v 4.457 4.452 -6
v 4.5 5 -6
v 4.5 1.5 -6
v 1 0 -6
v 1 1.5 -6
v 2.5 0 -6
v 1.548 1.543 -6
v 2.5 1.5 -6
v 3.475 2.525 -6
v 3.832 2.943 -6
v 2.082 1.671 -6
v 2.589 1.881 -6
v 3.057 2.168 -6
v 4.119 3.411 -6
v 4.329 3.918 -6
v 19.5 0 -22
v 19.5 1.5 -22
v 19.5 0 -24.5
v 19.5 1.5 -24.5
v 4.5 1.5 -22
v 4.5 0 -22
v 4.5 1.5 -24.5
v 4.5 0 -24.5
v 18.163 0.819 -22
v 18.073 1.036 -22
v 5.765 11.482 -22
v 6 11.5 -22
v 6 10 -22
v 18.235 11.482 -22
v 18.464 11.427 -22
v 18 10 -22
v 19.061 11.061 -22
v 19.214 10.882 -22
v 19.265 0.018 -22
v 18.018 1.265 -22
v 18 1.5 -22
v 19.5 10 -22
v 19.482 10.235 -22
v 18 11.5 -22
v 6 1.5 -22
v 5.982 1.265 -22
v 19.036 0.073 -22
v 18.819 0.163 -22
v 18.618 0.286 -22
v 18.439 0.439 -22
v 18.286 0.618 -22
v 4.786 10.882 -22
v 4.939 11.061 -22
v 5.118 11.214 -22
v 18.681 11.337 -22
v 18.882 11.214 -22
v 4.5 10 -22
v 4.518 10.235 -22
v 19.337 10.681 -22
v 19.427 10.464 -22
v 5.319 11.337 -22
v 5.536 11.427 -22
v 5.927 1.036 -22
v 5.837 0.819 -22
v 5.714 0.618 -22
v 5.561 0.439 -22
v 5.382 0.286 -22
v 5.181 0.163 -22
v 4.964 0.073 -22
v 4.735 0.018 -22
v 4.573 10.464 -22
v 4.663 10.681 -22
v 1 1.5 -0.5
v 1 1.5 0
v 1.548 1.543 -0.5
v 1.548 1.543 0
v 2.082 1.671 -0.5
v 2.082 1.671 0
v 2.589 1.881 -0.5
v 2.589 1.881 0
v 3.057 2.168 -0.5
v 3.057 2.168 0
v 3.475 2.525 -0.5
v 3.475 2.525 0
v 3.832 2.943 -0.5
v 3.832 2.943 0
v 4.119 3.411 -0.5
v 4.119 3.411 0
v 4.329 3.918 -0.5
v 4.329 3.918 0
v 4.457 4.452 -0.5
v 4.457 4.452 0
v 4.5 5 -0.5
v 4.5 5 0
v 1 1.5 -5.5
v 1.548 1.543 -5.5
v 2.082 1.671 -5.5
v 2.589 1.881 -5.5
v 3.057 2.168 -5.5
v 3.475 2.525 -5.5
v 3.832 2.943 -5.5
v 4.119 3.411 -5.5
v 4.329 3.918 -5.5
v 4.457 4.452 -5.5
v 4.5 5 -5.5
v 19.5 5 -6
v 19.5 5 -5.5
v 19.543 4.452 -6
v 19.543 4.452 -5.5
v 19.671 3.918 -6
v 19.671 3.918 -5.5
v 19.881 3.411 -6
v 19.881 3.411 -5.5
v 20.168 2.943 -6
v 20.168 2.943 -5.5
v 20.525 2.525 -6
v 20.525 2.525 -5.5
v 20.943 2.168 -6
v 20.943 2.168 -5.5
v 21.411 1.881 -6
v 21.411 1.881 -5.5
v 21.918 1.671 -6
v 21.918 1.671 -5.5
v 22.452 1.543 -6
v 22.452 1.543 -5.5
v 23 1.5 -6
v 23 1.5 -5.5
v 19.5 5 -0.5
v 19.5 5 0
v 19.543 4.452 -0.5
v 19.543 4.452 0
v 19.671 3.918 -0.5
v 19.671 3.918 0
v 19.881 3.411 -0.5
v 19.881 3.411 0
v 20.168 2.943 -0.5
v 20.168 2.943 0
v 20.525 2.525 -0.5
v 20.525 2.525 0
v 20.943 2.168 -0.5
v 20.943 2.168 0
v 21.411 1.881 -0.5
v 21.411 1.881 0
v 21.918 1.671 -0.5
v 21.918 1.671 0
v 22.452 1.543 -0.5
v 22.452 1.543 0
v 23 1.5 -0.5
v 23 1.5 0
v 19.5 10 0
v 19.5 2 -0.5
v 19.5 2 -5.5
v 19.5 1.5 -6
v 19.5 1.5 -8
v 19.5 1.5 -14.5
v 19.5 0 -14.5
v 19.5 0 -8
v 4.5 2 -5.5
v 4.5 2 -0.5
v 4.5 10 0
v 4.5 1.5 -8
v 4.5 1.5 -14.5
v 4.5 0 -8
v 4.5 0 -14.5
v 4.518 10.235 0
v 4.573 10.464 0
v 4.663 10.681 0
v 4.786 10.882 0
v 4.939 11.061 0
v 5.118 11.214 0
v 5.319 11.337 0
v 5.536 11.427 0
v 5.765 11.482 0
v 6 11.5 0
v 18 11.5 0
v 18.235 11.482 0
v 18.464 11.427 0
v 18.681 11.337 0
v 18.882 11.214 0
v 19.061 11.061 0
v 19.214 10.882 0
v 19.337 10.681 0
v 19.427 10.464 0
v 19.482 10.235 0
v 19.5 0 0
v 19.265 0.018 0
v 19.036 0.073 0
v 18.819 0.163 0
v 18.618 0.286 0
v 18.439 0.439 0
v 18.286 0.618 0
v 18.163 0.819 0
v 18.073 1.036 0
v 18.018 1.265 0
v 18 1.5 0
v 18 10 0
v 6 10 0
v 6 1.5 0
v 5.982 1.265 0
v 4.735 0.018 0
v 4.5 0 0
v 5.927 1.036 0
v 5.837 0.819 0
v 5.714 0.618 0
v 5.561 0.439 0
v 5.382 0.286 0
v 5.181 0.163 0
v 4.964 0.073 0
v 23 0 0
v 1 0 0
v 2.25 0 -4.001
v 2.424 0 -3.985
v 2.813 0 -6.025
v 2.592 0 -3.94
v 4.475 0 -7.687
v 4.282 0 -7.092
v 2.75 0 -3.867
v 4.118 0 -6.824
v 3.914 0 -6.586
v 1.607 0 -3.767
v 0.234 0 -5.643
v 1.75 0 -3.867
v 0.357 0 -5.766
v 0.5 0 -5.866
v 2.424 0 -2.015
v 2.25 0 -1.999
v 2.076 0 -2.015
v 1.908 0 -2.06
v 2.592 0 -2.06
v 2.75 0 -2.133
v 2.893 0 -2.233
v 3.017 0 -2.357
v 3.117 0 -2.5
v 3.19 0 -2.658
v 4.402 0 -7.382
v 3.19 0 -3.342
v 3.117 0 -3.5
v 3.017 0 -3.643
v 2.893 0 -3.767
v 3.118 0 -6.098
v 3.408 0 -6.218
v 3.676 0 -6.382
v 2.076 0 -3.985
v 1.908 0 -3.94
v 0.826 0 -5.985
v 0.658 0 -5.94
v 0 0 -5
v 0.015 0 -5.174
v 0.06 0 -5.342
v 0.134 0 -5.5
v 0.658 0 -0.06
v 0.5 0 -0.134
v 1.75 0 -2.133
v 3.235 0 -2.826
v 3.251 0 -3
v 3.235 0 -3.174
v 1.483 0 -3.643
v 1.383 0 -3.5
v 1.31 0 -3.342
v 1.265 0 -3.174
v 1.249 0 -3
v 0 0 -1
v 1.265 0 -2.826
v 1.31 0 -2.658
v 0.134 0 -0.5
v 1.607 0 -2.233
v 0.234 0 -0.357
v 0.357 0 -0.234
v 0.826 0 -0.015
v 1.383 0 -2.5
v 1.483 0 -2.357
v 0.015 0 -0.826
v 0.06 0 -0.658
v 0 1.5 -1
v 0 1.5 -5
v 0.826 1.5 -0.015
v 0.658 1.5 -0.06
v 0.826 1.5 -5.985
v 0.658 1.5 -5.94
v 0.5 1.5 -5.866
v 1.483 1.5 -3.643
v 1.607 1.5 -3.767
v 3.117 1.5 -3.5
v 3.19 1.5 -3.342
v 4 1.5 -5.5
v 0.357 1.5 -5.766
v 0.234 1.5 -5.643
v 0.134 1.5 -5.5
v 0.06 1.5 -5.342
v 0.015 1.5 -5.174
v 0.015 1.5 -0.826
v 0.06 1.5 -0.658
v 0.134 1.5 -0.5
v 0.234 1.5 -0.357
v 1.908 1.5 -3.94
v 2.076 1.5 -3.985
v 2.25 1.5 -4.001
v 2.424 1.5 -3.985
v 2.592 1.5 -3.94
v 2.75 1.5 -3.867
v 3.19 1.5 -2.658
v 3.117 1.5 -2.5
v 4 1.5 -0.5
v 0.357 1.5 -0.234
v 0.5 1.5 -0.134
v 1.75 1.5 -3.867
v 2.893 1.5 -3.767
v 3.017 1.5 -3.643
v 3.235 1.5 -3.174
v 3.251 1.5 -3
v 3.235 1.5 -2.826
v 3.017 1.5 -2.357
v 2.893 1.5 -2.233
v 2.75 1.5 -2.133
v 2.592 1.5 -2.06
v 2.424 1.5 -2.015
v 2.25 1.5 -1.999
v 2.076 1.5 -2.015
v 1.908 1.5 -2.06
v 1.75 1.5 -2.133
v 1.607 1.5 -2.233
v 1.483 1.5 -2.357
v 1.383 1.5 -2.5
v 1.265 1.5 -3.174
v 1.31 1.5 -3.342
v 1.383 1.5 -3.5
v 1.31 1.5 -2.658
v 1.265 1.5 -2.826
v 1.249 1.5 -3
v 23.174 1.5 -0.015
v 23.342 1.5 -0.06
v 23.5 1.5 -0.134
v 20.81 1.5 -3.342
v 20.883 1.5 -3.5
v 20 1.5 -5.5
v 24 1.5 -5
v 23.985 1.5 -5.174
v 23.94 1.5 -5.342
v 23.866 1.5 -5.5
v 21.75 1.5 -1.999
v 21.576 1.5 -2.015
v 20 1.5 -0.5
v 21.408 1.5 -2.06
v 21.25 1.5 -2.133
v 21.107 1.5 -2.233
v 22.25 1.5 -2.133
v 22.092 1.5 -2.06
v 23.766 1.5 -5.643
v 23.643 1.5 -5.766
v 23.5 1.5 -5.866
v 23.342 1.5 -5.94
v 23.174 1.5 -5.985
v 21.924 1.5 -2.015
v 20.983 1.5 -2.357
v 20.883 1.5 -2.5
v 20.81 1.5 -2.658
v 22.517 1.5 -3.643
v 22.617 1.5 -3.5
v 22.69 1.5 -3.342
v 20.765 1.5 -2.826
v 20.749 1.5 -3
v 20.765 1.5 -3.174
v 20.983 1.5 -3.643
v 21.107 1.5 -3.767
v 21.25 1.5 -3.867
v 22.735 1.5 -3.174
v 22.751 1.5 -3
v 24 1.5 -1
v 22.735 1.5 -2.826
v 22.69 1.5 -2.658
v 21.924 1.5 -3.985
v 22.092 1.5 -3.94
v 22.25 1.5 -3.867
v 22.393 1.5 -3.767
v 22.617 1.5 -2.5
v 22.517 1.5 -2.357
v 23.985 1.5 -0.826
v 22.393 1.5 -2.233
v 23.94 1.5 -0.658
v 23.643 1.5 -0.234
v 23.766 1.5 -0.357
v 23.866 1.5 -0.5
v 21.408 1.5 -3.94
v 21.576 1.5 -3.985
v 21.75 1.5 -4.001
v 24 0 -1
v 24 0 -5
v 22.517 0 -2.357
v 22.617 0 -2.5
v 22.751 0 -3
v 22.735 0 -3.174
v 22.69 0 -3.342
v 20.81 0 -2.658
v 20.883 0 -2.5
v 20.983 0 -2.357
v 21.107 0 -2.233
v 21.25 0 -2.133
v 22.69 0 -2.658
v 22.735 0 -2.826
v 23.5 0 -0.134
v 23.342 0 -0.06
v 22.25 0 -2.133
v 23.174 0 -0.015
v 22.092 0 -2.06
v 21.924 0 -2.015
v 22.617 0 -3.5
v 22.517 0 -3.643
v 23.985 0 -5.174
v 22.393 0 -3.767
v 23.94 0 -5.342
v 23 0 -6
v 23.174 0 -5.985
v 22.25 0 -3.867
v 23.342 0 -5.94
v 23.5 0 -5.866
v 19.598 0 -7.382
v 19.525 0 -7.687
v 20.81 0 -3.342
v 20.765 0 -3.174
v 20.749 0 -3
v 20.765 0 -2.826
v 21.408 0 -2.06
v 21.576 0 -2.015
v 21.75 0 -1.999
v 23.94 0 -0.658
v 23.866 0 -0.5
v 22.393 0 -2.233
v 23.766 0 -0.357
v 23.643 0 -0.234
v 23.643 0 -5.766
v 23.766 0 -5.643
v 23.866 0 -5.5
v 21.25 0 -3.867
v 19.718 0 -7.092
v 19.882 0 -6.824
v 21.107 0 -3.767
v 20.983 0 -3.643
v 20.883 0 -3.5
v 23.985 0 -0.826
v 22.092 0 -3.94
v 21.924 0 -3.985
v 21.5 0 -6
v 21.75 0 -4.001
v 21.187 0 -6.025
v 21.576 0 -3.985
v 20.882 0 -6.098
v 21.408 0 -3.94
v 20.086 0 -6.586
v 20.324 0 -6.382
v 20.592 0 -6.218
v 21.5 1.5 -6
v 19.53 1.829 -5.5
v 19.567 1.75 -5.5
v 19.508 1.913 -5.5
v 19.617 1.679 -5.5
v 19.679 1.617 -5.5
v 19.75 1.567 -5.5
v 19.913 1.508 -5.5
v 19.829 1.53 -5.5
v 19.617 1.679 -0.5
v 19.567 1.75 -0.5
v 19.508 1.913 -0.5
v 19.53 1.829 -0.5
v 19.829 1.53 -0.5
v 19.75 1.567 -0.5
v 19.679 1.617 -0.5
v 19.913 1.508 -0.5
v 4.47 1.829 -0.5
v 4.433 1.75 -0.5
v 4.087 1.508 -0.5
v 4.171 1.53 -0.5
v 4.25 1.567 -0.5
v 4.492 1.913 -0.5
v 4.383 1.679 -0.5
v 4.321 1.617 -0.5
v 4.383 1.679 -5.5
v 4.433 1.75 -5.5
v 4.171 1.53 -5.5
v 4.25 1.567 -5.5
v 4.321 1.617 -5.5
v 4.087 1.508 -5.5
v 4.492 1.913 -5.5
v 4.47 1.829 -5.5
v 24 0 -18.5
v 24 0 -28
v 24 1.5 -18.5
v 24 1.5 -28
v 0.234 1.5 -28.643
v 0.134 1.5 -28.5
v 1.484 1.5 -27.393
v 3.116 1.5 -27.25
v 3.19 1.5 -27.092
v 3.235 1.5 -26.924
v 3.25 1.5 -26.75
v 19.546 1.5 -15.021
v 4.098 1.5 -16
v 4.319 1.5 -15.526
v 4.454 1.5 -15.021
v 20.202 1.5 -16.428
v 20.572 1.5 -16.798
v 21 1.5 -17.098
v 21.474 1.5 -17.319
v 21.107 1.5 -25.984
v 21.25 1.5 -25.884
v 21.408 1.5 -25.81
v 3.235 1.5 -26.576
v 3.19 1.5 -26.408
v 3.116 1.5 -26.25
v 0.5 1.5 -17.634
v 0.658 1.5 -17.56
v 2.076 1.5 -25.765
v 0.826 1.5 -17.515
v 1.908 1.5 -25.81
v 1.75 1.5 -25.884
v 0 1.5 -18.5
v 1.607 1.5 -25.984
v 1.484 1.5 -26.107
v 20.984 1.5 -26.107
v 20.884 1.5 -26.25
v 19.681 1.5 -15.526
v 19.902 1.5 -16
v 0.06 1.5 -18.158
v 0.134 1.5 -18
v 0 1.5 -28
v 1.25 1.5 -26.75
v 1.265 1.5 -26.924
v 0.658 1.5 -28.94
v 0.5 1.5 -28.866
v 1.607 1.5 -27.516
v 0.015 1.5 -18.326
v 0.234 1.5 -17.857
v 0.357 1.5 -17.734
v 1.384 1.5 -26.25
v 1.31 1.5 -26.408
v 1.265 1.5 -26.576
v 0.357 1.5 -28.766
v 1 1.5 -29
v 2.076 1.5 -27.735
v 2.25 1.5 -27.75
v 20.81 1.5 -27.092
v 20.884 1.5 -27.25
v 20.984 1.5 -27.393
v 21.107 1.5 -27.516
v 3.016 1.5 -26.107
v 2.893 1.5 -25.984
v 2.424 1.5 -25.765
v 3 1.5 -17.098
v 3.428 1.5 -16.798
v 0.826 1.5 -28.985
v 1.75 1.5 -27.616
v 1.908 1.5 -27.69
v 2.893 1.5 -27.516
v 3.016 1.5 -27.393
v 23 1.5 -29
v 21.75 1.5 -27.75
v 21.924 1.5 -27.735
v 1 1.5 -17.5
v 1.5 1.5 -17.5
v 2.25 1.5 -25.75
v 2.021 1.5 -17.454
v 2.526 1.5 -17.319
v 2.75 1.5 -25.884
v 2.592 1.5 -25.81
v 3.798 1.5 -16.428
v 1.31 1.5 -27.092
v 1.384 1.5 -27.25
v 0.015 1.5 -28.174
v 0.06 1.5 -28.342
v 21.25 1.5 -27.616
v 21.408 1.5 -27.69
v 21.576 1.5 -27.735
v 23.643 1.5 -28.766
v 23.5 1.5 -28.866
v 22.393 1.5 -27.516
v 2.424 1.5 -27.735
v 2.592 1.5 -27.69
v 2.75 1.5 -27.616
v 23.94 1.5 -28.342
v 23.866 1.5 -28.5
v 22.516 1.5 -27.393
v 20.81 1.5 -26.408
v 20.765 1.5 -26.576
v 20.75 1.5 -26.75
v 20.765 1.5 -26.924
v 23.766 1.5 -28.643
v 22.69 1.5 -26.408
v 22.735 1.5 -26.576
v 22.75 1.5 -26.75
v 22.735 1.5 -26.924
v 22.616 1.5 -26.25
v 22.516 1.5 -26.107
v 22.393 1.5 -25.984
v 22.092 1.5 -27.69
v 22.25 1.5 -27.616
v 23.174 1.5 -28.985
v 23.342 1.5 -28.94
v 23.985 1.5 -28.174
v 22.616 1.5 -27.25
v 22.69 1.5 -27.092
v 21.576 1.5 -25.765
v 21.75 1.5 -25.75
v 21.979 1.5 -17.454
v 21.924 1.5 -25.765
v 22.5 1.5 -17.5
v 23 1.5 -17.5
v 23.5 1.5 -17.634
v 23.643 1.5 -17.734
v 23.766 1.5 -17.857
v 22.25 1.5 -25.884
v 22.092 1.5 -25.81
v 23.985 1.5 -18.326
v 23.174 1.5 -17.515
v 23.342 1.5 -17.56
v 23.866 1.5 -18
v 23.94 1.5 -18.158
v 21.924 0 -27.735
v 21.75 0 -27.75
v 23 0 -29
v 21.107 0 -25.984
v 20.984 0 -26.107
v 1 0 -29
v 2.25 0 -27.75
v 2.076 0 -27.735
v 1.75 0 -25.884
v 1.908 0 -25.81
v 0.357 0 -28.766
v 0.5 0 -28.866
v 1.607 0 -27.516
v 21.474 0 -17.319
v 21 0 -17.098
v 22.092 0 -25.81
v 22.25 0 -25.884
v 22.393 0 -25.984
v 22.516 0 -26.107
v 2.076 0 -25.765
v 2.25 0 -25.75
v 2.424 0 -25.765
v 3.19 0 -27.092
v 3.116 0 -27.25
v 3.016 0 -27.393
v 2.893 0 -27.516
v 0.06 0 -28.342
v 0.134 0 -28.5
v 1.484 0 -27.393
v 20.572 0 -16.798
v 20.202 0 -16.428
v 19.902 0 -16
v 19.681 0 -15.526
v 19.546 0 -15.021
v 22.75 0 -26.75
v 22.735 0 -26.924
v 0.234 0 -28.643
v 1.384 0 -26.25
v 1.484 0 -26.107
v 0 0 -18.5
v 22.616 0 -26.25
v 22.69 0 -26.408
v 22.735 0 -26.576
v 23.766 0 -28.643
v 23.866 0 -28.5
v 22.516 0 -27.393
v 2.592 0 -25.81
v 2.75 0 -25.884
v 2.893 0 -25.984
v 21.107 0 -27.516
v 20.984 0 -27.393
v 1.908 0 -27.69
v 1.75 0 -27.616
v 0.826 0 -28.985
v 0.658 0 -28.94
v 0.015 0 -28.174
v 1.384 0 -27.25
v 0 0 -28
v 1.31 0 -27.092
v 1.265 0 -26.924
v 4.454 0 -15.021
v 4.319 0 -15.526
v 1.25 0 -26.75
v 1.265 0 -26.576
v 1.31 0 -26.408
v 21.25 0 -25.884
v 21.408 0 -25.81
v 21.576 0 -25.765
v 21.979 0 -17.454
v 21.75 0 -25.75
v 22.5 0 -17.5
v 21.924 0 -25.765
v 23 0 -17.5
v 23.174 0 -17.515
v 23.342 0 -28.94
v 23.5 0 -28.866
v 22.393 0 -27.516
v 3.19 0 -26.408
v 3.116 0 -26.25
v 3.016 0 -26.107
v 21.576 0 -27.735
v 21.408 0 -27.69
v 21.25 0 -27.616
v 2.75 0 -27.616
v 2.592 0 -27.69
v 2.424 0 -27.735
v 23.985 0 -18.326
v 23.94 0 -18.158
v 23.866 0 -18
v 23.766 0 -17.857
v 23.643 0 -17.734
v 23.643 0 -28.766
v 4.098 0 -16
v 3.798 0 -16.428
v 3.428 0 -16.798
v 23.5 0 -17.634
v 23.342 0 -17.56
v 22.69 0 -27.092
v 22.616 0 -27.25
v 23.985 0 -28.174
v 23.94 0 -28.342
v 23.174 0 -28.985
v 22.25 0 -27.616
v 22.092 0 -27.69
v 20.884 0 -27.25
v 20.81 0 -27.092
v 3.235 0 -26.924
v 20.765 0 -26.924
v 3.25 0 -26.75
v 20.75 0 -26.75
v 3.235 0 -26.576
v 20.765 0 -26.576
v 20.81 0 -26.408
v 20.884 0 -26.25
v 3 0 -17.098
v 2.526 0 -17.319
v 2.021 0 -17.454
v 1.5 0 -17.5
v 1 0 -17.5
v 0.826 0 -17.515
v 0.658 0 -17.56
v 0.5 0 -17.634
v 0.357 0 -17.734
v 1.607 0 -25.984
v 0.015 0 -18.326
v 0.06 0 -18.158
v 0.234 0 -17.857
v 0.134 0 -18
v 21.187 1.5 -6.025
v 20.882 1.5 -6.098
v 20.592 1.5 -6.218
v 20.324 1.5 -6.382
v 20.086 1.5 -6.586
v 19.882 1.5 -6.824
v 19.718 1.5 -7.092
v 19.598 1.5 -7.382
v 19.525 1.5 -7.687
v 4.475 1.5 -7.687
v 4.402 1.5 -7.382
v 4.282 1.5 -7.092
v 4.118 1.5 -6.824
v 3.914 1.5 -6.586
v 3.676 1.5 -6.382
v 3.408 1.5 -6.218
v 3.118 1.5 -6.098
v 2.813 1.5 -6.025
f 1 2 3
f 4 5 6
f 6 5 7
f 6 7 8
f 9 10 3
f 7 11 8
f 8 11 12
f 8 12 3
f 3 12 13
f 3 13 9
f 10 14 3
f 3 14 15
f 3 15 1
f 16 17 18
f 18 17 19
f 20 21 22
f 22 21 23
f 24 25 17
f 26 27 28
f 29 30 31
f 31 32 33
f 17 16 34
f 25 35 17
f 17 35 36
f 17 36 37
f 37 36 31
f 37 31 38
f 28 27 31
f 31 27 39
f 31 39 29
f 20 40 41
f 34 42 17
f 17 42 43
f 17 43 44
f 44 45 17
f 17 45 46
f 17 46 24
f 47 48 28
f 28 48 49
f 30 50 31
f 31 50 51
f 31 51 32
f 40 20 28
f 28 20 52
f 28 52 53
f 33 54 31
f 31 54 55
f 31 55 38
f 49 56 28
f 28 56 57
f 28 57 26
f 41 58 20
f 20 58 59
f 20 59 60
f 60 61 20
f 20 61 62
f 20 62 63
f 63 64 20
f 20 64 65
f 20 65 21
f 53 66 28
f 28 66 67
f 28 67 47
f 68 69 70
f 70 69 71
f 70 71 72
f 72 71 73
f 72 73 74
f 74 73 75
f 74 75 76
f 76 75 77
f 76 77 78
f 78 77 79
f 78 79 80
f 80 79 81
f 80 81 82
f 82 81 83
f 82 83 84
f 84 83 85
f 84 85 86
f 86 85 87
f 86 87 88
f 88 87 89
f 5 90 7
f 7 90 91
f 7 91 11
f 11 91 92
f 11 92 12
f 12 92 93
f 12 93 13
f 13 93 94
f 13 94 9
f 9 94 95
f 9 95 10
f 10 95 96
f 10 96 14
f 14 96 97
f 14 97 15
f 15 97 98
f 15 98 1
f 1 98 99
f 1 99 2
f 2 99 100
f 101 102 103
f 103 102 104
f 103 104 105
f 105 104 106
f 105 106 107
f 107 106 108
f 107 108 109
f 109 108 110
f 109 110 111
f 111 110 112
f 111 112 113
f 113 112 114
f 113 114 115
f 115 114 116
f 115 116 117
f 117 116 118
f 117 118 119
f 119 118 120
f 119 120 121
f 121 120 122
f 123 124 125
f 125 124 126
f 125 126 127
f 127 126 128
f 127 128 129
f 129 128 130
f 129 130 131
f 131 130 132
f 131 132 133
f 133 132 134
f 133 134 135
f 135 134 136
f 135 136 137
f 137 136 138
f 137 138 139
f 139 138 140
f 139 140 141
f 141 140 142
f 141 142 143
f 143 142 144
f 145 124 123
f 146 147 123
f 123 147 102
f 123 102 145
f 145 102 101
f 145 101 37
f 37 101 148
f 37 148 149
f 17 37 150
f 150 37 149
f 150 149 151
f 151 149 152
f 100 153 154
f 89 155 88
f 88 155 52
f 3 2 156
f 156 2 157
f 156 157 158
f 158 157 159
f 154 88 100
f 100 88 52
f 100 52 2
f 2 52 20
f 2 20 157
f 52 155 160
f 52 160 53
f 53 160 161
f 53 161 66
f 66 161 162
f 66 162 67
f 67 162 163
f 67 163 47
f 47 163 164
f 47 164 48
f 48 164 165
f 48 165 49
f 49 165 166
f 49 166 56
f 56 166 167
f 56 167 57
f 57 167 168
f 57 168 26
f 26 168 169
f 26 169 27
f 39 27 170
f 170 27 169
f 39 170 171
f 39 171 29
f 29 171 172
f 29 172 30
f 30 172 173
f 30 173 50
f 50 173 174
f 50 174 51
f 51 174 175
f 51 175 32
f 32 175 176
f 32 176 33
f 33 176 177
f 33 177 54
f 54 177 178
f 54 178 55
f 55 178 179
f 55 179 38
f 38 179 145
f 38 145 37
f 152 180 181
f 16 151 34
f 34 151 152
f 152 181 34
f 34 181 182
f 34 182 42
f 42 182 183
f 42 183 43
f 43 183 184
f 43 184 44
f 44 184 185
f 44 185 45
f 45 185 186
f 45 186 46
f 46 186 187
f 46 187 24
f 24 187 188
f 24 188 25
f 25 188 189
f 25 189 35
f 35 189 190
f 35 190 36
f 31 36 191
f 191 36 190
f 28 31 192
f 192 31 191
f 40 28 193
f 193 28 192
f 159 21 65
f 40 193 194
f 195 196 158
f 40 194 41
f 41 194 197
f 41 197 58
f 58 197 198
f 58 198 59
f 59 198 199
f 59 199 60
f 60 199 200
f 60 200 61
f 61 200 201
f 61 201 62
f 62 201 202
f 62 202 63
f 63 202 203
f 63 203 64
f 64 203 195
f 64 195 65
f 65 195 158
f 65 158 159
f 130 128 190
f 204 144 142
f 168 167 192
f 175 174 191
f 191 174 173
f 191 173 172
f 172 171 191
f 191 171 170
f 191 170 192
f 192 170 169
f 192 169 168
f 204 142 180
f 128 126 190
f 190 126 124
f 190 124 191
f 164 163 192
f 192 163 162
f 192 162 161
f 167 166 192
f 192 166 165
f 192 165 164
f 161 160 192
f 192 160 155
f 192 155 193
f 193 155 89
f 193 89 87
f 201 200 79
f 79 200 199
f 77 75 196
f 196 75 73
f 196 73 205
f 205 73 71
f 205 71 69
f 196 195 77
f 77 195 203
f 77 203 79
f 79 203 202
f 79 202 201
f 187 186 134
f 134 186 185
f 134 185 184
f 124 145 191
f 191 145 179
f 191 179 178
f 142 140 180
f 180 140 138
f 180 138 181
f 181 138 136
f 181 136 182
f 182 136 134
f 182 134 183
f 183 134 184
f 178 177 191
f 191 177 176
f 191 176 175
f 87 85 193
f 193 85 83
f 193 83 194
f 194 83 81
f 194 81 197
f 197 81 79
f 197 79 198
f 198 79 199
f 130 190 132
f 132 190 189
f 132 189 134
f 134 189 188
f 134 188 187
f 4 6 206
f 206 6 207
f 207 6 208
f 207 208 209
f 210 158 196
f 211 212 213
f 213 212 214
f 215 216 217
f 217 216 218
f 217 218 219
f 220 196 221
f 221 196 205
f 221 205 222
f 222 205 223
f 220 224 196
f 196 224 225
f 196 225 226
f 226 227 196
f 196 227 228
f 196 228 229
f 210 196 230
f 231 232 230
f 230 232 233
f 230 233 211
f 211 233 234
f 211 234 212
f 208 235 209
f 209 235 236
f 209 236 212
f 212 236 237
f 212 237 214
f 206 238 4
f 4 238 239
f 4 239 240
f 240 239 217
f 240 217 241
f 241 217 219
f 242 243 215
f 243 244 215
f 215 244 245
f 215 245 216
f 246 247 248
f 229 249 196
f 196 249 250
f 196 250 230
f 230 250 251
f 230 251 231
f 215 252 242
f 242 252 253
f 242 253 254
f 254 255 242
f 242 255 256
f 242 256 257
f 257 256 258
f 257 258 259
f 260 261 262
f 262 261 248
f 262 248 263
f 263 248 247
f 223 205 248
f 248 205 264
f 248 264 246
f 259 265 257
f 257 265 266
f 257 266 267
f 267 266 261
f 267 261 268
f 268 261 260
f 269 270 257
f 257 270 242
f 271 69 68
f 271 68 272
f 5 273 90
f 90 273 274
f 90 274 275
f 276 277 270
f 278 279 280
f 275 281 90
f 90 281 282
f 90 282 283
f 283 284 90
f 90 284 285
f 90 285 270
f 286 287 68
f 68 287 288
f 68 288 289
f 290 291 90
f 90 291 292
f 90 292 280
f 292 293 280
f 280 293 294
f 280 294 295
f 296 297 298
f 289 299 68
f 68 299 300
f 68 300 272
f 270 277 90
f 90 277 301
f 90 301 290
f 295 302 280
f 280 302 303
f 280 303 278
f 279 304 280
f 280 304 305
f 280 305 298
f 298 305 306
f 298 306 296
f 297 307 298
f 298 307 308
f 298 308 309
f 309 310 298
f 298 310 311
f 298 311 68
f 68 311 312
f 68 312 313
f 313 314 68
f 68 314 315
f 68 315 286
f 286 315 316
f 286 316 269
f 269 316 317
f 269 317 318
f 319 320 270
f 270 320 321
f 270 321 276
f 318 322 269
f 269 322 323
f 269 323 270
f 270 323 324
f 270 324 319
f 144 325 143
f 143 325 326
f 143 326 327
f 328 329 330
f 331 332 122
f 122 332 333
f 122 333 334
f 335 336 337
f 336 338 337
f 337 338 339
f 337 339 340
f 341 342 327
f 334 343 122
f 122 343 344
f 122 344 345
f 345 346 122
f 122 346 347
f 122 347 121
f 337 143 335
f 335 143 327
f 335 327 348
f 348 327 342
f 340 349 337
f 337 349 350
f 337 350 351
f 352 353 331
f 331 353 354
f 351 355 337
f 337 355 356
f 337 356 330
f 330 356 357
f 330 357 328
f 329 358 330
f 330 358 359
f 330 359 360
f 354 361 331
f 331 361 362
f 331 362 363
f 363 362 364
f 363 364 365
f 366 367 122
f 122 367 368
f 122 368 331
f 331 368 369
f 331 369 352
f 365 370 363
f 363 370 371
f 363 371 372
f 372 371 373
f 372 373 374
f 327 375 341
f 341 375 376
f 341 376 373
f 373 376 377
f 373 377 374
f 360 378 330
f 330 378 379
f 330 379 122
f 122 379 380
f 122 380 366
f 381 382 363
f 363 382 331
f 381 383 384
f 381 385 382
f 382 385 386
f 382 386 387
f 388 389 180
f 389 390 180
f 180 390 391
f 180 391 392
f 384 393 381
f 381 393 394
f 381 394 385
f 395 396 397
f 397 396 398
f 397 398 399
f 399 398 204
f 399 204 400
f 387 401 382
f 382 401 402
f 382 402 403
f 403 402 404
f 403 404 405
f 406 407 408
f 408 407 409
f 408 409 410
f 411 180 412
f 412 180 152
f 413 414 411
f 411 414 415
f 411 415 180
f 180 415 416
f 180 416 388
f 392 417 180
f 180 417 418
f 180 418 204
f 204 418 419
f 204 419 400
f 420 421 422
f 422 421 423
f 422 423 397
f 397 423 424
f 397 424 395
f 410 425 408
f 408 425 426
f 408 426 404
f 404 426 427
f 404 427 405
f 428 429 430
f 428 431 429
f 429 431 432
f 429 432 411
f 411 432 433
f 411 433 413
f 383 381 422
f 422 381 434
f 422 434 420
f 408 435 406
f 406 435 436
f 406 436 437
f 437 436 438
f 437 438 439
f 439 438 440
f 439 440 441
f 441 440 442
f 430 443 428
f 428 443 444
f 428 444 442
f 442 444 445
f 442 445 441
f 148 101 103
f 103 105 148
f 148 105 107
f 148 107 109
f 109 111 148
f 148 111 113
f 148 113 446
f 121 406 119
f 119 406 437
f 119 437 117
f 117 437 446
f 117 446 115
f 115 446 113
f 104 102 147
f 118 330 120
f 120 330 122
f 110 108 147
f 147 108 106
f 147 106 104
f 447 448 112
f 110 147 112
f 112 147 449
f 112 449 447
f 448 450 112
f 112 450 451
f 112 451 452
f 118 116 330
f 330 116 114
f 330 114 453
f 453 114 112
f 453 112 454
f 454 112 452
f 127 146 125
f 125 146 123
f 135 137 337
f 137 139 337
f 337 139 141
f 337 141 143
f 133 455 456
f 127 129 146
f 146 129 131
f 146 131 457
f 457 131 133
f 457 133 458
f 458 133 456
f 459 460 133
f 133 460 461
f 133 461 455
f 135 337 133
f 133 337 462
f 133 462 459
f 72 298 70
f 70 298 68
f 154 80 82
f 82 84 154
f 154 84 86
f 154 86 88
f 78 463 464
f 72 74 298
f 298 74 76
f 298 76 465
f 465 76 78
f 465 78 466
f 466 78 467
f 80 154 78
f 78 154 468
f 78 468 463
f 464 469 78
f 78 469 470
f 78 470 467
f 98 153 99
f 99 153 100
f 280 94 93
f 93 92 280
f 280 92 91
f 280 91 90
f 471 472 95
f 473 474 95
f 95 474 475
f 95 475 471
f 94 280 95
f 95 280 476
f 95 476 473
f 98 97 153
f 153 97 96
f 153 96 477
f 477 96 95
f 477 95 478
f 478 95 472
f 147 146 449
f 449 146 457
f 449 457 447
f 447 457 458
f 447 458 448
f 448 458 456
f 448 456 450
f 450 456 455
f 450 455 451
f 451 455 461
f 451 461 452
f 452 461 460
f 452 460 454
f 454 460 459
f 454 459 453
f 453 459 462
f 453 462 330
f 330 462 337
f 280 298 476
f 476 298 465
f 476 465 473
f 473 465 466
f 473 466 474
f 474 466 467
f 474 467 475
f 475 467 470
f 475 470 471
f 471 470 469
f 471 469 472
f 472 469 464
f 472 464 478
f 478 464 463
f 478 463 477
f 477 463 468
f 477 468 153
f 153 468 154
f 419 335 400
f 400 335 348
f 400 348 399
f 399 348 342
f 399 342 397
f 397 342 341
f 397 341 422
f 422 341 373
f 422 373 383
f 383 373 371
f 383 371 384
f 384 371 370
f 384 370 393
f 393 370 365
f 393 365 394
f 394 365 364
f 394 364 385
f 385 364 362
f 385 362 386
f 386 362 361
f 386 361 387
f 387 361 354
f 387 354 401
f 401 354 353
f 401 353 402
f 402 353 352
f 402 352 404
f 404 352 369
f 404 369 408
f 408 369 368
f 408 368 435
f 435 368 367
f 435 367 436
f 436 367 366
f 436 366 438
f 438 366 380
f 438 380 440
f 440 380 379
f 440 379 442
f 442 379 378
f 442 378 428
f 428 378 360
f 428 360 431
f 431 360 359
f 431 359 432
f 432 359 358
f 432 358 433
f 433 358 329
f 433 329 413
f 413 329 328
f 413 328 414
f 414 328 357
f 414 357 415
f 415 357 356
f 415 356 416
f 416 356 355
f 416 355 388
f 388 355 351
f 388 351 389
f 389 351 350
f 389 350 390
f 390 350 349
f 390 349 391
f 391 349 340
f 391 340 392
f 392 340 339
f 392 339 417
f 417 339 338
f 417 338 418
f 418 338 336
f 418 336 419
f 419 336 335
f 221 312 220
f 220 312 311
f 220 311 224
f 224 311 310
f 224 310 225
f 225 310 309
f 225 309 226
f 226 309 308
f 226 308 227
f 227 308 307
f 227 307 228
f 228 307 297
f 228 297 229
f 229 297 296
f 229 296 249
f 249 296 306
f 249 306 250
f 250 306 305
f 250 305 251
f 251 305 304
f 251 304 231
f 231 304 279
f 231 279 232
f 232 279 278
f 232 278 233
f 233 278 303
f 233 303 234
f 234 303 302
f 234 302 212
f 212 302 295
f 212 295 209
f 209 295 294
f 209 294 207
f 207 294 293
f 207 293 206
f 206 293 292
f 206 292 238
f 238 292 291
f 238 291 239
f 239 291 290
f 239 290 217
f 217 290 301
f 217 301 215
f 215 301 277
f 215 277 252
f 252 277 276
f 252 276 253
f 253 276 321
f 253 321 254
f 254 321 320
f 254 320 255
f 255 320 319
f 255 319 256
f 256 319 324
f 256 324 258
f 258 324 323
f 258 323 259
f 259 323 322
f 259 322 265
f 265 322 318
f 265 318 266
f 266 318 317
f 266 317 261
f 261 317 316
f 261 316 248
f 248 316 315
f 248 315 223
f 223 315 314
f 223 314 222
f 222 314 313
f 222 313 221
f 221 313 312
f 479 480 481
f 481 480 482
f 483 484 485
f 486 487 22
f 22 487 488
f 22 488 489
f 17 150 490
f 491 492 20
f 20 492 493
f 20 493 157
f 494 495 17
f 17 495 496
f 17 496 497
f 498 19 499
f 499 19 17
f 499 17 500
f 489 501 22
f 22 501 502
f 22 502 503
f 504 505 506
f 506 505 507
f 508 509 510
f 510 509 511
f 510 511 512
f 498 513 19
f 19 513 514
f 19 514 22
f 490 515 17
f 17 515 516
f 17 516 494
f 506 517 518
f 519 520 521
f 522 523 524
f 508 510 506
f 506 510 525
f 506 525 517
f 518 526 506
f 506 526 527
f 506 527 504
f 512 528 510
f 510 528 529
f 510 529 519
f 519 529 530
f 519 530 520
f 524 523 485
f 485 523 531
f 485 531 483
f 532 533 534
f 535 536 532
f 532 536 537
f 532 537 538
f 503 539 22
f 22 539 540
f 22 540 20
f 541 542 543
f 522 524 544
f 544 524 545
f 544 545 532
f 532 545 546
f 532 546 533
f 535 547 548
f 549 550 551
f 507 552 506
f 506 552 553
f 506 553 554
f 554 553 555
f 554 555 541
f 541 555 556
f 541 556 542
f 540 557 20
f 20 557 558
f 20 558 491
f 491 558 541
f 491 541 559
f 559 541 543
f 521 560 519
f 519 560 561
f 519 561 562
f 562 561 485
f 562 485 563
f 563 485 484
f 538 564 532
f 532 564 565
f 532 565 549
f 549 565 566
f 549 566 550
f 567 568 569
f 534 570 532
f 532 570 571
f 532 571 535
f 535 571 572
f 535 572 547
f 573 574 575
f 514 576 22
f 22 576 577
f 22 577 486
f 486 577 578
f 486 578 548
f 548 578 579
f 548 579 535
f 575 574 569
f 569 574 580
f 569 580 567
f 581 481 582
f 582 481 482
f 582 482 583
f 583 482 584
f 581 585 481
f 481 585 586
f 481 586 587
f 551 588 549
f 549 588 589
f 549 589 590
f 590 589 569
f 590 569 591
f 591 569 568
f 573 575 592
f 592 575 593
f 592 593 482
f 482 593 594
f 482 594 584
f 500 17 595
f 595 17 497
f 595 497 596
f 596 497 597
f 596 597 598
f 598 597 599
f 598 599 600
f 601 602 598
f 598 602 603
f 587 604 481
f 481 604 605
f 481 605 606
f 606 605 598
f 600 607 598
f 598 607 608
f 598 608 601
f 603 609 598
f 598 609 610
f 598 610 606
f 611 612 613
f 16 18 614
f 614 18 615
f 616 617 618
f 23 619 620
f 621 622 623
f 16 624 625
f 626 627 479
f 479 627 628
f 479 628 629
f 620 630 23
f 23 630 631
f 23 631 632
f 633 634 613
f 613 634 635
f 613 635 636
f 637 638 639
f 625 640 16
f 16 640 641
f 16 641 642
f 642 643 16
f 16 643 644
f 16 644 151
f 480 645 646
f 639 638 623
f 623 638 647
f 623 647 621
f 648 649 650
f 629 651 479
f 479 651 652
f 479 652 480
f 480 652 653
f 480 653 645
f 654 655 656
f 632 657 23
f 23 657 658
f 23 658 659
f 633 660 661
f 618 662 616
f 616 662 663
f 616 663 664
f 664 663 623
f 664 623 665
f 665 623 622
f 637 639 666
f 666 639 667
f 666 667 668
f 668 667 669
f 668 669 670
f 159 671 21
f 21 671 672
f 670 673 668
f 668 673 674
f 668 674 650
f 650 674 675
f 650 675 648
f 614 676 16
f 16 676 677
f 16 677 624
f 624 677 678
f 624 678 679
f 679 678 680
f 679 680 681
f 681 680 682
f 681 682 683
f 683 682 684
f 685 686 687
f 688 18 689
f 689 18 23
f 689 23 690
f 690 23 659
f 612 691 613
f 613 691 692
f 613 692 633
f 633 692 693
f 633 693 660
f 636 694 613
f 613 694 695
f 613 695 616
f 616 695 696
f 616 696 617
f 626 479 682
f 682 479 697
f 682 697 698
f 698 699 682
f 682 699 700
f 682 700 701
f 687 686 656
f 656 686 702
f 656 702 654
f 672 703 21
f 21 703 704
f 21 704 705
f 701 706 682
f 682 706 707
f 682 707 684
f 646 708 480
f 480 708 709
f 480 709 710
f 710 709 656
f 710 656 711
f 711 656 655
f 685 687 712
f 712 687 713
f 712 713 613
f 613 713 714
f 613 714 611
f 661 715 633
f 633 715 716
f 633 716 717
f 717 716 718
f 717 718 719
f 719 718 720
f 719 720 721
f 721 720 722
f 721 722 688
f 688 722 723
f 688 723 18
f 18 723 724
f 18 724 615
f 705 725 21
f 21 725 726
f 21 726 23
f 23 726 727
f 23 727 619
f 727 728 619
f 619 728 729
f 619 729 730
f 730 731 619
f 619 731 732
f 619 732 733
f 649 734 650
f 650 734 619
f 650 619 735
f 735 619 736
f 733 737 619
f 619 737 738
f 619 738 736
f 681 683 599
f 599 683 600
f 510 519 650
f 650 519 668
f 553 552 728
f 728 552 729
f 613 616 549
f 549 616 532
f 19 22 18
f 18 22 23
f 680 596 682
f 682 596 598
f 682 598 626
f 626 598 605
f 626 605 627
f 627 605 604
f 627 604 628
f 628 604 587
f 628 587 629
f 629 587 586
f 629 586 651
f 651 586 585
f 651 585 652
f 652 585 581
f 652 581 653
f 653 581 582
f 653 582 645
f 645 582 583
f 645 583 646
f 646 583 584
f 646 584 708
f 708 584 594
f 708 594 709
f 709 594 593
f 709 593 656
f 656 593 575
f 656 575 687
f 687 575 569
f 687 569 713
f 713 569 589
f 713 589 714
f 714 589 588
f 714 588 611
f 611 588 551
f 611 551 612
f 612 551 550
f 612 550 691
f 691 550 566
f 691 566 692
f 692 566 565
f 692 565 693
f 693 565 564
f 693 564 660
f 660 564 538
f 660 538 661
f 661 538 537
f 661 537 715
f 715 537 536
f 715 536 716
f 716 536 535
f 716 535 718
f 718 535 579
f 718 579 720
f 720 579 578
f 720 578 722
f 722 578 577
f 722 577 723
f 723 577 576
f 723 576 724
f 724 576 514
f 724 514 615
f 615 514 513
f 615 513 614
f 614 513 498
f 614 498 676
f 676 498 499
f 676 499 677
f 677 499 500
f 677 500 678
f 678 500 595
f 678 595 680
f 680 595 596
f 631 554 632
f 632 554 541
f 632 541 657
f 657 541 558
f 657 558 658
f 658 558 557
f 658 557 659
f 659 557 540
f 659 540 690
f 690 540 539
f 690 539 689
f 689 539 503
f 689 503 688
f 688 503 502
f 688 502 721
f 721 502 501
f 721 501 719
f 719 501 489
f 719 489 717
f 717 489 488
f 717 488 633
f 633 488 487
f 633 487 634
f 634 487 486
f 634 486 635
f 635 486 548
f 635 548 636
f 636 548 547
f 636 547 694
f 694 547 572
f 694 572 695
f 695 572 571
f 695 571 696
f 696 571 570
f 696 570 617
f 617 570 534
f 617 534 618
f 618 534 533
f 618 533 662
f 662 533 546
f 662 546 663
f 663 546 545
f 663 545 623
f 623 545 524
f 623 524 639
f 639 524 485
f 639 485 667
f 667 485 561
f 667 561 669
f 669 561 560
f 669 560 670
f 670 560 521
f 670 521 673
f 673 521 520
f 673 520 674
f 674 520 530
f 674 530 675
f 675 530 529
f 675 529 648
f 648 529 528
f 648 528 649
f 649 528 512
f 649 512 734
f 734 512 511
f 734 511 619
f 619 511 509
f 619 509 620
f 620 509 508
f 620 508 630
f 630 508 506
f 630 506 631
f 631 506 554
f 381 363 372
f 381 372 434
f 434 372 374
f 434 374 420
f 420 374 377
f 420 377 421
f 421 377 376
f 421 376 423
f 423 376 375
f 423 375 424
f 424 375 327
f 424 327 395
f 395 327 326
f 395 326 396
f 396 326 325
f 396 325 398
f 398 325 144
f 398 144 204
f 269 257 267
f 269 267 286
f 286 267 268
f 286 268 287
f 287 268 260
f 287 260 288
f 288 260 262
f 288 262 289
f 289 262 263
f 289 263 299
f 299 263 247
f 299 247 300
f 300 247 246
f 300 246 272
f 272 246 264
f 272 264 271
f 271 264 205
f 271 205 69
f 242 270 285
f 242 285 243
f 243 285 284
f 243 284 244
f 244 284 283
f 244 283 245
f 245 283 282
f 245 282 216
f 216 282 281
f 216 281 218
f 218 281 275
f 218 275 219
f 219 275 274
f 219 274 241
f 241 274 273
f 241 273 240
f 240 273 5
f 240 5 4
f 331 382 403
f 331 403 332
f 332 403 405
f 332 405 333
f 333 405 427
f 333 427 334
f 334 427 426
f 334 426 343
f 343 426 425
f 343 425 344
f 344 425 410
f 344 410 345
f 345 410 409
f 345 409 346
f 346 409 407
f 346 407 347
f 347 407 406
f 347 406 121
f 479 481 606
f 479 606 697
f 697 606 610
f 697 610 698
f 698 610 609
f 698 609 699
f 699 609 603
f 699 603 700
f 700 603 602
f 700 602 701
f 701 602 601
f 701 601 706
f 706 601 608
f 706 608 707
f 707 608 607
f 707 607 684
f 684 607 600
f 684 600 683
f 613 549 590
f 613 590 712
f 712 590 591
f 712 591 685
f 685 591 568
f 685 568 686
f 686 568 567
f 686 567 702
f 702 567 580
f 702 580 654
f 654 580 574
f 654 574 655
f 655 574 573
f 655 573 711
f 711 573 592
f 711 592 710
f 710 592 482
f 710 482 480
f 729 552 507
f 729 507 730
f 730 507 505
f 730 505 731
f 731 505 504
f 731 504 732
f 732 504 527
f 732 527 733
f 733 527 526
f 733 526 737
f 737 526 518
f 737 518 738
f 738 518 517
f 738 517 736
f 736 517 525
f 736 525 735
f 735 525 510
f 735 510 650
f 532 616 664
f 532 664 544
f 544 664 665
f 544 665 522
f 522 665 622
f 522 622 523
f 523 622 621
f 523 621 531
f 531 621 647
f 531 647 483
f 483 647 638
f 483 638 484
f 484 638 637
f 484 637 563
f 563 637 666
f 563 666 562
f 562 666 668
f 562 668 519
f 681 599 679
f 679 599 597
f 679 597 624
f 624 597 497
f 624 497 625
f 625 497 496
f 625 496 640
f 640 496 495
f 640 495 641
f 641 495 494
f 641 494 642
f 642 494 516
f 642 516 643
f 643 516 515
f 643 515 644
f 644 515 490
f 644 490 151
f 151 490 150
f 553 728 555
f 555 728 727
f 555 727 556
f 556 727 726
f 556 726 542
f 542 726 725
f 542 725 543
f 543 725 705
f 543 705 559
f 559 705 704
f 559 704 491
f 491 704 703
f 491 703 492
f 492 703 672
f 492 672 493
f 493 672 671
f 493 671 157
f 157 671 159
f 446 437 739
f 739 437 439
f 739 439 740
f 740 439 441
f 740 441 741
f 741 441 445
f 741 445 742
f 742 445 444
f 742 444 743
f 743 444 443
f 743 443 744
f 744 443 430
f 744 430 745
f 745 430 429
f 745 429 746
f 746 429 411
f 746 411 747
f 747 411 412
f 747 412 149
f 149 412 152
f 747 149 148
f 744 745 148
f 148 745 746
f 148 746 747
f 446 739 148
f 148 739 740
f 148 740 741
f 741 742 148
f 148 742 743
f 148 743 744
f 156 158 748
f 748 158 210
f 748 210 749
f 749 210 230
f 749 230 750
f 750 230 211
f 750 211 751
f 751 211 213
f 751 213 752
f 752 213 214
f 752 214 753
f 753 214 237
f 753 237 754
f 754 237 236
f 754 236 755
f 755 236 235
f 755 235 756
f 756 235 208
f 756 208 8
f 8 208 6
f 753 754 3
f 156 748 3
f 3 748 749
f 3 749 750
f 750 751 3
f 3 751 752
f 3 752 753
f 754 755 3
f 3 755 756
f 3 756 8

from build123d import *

# Parameters (mm, degrees)
BOSS_EXTRUDE1_DEPTH = 22
BOSS_EXTRUDE2_DEPTH = 6
CUT_EXTRUDE1_DEPTH  = 6
FILLET1_R           = 0.5
SKETCH4_R           = 1.000653367
CUT_EXTRUDE2_DEPTH  = 6
SKETCH5_W           = 4.5
SKETCH5_H           = 1.5
BOSS_EXTRUDE3_DEPTH = 4.5
SKETCH7_W           = 4.5
SKETCH7_H           = 1.5
BOSS_EXTRUDE4_DEPTH = 7
SKETCH8_W           = 4.5
SKETCH8_H           = 1.5
BOSS_EXTRUDE5_DEPTH = 17
SKETCH9_R           = 1
CUT_EXTRUDE3_DEPTH  = 17
FILLET2_R           = 1
FILLET3_R           = 3
BOSS_EXTRUDE6_DEPTH = 1.5


with BuildPart() as part:
    # Sketch2 → Boss-Extrude1 (new body)
    with BuildSketch(Plane.XY):
        with BuildLine():
            Line((4.5, 5), (4.5, 0))
            ThreePointArc((4.5, 0), (5.560660172, 0.439339828), (6, 1.5))
            Line((6, 1.5), (6, 10))
            Line((6, 10), (18, 10))
            Line((18, 10), (18, 1.5))
            ThreePointArc((18, 1.5), (18.439339828, 0.439339828), (19.5, 0))
            Line((19.5, 0), (19.5, 5))
            Line((19.5, 5), (19.5, 10))
            ThreePointArc((19.5, 10), (19.060660172, 11.060660172), (18, 11.5))
            Line((18, 11.5), (6, 11.5))
            ThreePointArc((6, 11.5), (4.939339828, 11.060660172), (4.5, 10))
            Line((4.5, 10), (4.5, 5))
        make_face()
    extrude(amount=-BOSS_EXTRUDE1_DEPTH)

    # Sketch2<6> → Boss-Extrude2 (add)
    with BuildSketch(Plane.XY):
        with BuildLine():
            Line((0, 1.5), (0, 0))
            Line((0, 0), (4.5, 0))
            Line((4.5, 0), (4.5, 5))
            ThreePointArc((4.5, 5), (3.474873734, 2.525126266), (1, 1.5))
            Line((1, 1.5), (0, 1.5))
        make_face()
        with BuildLine():
            Line((19.5, 5), (19.5, 0))
            Line((19.5, 0), (24, 0))
            Line((24, 0), (24, 1.5))
            Line((24, 1.5), (23, 1.5))
            ThreePointArc((23, 1.5), (20.525126266, 2.525126266), (19.5, 5))
        make_face()
    extrude(amount=-BOSS_EXTRUDE2_DEPTH)

    # Sketch3 → Cut-Extrude1 (cut)
    with BuildSketch(Plane(origin=(0, 1.5, 0), x_dir=(1, 0, 0), z_dir=(0, 1, 0))):
        Polygon((24, 3), (24, 5.5), (19.5, 5.5), (19.5, 0.5), (24, 0.5), align=None)
        Polygon((0, 3), (0, 0.5), (4.5, 0.5), (4.5, 5.5), (0, 5.5), align=None)
    extrude(amount=CUT_EXTRUDE1_DEPTH, mode=Mode.SUBTRACT)

    # Fillet1
    fillet1_edges = [part.edges().sort_by_distance(p)[0] for p in [
        (19.5, 1.5, -3),
        (4.5, 1.5, -3),
    ]]
    fillet(fillet1_edges, radius=FILLET1_R)

    # Sketch4 → Cut-Extrude2 (cut)
    with BuildSketch(Plane(origin=(0, 1.5, 0), x_dir=(1, 0, 0), z_dir=(0, 1, 0))):
        with Locations((2.25, 3)):
            Circle(SKETCH4_R)
        with Locations((21.75, 3)):
            Circle(SKETCH4_R)
    extrude(amount=-CUT_EXTRUDE2_DEPTH, mode=Mode.SUBTRACT)

    # Sketch5 → Boss-Extrude3 (add)
    with BuildSketch(Plane(origin=(0, 0, -22), x_dir=(-1, 0, 0), z_dir=(0, 0, -1))):
        with Locations((-21.75, 0.75)):
            Rectangle(SKETCH5_W, SKETCH5_H)
        with Locations((-2.25, 0.75)):
            Rectangle(SKETCH5_W, SKETCH5_H)
    extrude(amount=-BOSS_EXTRUDE3_DEPTH)

    # Sketch7 → Boss-Extrude4 (add)
    with BuildSketch(Plane(origin=(0, 0, -22), x_dir=(-1, 0, 0), z_dir=(0, 0, -1))):
        with Locations((-21.75, 0.75)):
            Rectangle(SKETCH7_W, SKETCH7_H)
        with Locations((-2.25, 0.75)):
            Rectangle(SKETCH7_W, SKETCH7_H)
    extrude(amount=BOSS_EXTRUDE4_DEPTH)

    # Sketch8 → Boss-Extrude5 (add)
    with BuildSketch(Plane(origin=(4.5, 0, 0), x_dir=(0, 0, -1), z_dir=(1, 0, 0))):
        with Locations((26.75, 0.75)):
            Rectangle(SKETCH8_W, SKETCH8_H)
    extrude(amount=BOSS_EXTRUDE5_DEPTH)

    # Sketch9 → Cut-Extrude3 (cut)
    with BuildSketch(Plane(origin=(0, 1.5, 0), x_dir=(1, 0, 0), z_dir=(0, 1, 0))):
        with Locations((2.25, 26.75)):
            Circle(SKETCH9_R)
        with Locations((21.75, 26.75)):
            Circle(SKETCH9_R)
    extrude(amount=-CUT_EXTRUDE3_DEPTH, mode=Mode.SUBTRACT)

    # Fillet2
    fillet2_edges = [part.edges().sort_by_distance(p)[0] for p in [
        (24, 0.75, 0),
        (0, 0.75, 0),
        (0, 0.75, -6),
        (24, 0.75, -6),
        (24, 0.75, -17.5),
        (24, 0.75, -29),
        (0, 0.75, -17.5),
        (0, 0.75, -29),
    ]]
    fillet(fillet2_edges, radius=FILLET2_R)

    # Fillet3
    fillet3_edges = [part.edges().sort_by_distance(p)[0] for p in [
        (19.5, 0.75, -17.5),
        (4.5, 0.75, -17.5),
    ]]
    fillet(fillet3_edges, radius=FILLET3_R)

    # Sketch13 → Boss-Extrude6 (add)
    with BuildSketch(Plane.XZ):
        with BuildLine():
            Line((4.5, -8), (4.5, -6))
            Line((4.5, -6), (2.5, -6))
            ThreePointArc((2.5, -6), (3.914213562, -6.585786438), (4.5, -8))
        make_face()
        with BuildLine():
            ThreePointArc((19.5, -8), (20.085786438, -6.585786438), (21.5, -6))
            Line((21.5, -6), (19.5, -6))
            Line((19.5, -6), (19.5, -8))
        make_face()
    extrude(amount=-BOSS_EXTRUDE6_DEPTH)


solid = part.part
